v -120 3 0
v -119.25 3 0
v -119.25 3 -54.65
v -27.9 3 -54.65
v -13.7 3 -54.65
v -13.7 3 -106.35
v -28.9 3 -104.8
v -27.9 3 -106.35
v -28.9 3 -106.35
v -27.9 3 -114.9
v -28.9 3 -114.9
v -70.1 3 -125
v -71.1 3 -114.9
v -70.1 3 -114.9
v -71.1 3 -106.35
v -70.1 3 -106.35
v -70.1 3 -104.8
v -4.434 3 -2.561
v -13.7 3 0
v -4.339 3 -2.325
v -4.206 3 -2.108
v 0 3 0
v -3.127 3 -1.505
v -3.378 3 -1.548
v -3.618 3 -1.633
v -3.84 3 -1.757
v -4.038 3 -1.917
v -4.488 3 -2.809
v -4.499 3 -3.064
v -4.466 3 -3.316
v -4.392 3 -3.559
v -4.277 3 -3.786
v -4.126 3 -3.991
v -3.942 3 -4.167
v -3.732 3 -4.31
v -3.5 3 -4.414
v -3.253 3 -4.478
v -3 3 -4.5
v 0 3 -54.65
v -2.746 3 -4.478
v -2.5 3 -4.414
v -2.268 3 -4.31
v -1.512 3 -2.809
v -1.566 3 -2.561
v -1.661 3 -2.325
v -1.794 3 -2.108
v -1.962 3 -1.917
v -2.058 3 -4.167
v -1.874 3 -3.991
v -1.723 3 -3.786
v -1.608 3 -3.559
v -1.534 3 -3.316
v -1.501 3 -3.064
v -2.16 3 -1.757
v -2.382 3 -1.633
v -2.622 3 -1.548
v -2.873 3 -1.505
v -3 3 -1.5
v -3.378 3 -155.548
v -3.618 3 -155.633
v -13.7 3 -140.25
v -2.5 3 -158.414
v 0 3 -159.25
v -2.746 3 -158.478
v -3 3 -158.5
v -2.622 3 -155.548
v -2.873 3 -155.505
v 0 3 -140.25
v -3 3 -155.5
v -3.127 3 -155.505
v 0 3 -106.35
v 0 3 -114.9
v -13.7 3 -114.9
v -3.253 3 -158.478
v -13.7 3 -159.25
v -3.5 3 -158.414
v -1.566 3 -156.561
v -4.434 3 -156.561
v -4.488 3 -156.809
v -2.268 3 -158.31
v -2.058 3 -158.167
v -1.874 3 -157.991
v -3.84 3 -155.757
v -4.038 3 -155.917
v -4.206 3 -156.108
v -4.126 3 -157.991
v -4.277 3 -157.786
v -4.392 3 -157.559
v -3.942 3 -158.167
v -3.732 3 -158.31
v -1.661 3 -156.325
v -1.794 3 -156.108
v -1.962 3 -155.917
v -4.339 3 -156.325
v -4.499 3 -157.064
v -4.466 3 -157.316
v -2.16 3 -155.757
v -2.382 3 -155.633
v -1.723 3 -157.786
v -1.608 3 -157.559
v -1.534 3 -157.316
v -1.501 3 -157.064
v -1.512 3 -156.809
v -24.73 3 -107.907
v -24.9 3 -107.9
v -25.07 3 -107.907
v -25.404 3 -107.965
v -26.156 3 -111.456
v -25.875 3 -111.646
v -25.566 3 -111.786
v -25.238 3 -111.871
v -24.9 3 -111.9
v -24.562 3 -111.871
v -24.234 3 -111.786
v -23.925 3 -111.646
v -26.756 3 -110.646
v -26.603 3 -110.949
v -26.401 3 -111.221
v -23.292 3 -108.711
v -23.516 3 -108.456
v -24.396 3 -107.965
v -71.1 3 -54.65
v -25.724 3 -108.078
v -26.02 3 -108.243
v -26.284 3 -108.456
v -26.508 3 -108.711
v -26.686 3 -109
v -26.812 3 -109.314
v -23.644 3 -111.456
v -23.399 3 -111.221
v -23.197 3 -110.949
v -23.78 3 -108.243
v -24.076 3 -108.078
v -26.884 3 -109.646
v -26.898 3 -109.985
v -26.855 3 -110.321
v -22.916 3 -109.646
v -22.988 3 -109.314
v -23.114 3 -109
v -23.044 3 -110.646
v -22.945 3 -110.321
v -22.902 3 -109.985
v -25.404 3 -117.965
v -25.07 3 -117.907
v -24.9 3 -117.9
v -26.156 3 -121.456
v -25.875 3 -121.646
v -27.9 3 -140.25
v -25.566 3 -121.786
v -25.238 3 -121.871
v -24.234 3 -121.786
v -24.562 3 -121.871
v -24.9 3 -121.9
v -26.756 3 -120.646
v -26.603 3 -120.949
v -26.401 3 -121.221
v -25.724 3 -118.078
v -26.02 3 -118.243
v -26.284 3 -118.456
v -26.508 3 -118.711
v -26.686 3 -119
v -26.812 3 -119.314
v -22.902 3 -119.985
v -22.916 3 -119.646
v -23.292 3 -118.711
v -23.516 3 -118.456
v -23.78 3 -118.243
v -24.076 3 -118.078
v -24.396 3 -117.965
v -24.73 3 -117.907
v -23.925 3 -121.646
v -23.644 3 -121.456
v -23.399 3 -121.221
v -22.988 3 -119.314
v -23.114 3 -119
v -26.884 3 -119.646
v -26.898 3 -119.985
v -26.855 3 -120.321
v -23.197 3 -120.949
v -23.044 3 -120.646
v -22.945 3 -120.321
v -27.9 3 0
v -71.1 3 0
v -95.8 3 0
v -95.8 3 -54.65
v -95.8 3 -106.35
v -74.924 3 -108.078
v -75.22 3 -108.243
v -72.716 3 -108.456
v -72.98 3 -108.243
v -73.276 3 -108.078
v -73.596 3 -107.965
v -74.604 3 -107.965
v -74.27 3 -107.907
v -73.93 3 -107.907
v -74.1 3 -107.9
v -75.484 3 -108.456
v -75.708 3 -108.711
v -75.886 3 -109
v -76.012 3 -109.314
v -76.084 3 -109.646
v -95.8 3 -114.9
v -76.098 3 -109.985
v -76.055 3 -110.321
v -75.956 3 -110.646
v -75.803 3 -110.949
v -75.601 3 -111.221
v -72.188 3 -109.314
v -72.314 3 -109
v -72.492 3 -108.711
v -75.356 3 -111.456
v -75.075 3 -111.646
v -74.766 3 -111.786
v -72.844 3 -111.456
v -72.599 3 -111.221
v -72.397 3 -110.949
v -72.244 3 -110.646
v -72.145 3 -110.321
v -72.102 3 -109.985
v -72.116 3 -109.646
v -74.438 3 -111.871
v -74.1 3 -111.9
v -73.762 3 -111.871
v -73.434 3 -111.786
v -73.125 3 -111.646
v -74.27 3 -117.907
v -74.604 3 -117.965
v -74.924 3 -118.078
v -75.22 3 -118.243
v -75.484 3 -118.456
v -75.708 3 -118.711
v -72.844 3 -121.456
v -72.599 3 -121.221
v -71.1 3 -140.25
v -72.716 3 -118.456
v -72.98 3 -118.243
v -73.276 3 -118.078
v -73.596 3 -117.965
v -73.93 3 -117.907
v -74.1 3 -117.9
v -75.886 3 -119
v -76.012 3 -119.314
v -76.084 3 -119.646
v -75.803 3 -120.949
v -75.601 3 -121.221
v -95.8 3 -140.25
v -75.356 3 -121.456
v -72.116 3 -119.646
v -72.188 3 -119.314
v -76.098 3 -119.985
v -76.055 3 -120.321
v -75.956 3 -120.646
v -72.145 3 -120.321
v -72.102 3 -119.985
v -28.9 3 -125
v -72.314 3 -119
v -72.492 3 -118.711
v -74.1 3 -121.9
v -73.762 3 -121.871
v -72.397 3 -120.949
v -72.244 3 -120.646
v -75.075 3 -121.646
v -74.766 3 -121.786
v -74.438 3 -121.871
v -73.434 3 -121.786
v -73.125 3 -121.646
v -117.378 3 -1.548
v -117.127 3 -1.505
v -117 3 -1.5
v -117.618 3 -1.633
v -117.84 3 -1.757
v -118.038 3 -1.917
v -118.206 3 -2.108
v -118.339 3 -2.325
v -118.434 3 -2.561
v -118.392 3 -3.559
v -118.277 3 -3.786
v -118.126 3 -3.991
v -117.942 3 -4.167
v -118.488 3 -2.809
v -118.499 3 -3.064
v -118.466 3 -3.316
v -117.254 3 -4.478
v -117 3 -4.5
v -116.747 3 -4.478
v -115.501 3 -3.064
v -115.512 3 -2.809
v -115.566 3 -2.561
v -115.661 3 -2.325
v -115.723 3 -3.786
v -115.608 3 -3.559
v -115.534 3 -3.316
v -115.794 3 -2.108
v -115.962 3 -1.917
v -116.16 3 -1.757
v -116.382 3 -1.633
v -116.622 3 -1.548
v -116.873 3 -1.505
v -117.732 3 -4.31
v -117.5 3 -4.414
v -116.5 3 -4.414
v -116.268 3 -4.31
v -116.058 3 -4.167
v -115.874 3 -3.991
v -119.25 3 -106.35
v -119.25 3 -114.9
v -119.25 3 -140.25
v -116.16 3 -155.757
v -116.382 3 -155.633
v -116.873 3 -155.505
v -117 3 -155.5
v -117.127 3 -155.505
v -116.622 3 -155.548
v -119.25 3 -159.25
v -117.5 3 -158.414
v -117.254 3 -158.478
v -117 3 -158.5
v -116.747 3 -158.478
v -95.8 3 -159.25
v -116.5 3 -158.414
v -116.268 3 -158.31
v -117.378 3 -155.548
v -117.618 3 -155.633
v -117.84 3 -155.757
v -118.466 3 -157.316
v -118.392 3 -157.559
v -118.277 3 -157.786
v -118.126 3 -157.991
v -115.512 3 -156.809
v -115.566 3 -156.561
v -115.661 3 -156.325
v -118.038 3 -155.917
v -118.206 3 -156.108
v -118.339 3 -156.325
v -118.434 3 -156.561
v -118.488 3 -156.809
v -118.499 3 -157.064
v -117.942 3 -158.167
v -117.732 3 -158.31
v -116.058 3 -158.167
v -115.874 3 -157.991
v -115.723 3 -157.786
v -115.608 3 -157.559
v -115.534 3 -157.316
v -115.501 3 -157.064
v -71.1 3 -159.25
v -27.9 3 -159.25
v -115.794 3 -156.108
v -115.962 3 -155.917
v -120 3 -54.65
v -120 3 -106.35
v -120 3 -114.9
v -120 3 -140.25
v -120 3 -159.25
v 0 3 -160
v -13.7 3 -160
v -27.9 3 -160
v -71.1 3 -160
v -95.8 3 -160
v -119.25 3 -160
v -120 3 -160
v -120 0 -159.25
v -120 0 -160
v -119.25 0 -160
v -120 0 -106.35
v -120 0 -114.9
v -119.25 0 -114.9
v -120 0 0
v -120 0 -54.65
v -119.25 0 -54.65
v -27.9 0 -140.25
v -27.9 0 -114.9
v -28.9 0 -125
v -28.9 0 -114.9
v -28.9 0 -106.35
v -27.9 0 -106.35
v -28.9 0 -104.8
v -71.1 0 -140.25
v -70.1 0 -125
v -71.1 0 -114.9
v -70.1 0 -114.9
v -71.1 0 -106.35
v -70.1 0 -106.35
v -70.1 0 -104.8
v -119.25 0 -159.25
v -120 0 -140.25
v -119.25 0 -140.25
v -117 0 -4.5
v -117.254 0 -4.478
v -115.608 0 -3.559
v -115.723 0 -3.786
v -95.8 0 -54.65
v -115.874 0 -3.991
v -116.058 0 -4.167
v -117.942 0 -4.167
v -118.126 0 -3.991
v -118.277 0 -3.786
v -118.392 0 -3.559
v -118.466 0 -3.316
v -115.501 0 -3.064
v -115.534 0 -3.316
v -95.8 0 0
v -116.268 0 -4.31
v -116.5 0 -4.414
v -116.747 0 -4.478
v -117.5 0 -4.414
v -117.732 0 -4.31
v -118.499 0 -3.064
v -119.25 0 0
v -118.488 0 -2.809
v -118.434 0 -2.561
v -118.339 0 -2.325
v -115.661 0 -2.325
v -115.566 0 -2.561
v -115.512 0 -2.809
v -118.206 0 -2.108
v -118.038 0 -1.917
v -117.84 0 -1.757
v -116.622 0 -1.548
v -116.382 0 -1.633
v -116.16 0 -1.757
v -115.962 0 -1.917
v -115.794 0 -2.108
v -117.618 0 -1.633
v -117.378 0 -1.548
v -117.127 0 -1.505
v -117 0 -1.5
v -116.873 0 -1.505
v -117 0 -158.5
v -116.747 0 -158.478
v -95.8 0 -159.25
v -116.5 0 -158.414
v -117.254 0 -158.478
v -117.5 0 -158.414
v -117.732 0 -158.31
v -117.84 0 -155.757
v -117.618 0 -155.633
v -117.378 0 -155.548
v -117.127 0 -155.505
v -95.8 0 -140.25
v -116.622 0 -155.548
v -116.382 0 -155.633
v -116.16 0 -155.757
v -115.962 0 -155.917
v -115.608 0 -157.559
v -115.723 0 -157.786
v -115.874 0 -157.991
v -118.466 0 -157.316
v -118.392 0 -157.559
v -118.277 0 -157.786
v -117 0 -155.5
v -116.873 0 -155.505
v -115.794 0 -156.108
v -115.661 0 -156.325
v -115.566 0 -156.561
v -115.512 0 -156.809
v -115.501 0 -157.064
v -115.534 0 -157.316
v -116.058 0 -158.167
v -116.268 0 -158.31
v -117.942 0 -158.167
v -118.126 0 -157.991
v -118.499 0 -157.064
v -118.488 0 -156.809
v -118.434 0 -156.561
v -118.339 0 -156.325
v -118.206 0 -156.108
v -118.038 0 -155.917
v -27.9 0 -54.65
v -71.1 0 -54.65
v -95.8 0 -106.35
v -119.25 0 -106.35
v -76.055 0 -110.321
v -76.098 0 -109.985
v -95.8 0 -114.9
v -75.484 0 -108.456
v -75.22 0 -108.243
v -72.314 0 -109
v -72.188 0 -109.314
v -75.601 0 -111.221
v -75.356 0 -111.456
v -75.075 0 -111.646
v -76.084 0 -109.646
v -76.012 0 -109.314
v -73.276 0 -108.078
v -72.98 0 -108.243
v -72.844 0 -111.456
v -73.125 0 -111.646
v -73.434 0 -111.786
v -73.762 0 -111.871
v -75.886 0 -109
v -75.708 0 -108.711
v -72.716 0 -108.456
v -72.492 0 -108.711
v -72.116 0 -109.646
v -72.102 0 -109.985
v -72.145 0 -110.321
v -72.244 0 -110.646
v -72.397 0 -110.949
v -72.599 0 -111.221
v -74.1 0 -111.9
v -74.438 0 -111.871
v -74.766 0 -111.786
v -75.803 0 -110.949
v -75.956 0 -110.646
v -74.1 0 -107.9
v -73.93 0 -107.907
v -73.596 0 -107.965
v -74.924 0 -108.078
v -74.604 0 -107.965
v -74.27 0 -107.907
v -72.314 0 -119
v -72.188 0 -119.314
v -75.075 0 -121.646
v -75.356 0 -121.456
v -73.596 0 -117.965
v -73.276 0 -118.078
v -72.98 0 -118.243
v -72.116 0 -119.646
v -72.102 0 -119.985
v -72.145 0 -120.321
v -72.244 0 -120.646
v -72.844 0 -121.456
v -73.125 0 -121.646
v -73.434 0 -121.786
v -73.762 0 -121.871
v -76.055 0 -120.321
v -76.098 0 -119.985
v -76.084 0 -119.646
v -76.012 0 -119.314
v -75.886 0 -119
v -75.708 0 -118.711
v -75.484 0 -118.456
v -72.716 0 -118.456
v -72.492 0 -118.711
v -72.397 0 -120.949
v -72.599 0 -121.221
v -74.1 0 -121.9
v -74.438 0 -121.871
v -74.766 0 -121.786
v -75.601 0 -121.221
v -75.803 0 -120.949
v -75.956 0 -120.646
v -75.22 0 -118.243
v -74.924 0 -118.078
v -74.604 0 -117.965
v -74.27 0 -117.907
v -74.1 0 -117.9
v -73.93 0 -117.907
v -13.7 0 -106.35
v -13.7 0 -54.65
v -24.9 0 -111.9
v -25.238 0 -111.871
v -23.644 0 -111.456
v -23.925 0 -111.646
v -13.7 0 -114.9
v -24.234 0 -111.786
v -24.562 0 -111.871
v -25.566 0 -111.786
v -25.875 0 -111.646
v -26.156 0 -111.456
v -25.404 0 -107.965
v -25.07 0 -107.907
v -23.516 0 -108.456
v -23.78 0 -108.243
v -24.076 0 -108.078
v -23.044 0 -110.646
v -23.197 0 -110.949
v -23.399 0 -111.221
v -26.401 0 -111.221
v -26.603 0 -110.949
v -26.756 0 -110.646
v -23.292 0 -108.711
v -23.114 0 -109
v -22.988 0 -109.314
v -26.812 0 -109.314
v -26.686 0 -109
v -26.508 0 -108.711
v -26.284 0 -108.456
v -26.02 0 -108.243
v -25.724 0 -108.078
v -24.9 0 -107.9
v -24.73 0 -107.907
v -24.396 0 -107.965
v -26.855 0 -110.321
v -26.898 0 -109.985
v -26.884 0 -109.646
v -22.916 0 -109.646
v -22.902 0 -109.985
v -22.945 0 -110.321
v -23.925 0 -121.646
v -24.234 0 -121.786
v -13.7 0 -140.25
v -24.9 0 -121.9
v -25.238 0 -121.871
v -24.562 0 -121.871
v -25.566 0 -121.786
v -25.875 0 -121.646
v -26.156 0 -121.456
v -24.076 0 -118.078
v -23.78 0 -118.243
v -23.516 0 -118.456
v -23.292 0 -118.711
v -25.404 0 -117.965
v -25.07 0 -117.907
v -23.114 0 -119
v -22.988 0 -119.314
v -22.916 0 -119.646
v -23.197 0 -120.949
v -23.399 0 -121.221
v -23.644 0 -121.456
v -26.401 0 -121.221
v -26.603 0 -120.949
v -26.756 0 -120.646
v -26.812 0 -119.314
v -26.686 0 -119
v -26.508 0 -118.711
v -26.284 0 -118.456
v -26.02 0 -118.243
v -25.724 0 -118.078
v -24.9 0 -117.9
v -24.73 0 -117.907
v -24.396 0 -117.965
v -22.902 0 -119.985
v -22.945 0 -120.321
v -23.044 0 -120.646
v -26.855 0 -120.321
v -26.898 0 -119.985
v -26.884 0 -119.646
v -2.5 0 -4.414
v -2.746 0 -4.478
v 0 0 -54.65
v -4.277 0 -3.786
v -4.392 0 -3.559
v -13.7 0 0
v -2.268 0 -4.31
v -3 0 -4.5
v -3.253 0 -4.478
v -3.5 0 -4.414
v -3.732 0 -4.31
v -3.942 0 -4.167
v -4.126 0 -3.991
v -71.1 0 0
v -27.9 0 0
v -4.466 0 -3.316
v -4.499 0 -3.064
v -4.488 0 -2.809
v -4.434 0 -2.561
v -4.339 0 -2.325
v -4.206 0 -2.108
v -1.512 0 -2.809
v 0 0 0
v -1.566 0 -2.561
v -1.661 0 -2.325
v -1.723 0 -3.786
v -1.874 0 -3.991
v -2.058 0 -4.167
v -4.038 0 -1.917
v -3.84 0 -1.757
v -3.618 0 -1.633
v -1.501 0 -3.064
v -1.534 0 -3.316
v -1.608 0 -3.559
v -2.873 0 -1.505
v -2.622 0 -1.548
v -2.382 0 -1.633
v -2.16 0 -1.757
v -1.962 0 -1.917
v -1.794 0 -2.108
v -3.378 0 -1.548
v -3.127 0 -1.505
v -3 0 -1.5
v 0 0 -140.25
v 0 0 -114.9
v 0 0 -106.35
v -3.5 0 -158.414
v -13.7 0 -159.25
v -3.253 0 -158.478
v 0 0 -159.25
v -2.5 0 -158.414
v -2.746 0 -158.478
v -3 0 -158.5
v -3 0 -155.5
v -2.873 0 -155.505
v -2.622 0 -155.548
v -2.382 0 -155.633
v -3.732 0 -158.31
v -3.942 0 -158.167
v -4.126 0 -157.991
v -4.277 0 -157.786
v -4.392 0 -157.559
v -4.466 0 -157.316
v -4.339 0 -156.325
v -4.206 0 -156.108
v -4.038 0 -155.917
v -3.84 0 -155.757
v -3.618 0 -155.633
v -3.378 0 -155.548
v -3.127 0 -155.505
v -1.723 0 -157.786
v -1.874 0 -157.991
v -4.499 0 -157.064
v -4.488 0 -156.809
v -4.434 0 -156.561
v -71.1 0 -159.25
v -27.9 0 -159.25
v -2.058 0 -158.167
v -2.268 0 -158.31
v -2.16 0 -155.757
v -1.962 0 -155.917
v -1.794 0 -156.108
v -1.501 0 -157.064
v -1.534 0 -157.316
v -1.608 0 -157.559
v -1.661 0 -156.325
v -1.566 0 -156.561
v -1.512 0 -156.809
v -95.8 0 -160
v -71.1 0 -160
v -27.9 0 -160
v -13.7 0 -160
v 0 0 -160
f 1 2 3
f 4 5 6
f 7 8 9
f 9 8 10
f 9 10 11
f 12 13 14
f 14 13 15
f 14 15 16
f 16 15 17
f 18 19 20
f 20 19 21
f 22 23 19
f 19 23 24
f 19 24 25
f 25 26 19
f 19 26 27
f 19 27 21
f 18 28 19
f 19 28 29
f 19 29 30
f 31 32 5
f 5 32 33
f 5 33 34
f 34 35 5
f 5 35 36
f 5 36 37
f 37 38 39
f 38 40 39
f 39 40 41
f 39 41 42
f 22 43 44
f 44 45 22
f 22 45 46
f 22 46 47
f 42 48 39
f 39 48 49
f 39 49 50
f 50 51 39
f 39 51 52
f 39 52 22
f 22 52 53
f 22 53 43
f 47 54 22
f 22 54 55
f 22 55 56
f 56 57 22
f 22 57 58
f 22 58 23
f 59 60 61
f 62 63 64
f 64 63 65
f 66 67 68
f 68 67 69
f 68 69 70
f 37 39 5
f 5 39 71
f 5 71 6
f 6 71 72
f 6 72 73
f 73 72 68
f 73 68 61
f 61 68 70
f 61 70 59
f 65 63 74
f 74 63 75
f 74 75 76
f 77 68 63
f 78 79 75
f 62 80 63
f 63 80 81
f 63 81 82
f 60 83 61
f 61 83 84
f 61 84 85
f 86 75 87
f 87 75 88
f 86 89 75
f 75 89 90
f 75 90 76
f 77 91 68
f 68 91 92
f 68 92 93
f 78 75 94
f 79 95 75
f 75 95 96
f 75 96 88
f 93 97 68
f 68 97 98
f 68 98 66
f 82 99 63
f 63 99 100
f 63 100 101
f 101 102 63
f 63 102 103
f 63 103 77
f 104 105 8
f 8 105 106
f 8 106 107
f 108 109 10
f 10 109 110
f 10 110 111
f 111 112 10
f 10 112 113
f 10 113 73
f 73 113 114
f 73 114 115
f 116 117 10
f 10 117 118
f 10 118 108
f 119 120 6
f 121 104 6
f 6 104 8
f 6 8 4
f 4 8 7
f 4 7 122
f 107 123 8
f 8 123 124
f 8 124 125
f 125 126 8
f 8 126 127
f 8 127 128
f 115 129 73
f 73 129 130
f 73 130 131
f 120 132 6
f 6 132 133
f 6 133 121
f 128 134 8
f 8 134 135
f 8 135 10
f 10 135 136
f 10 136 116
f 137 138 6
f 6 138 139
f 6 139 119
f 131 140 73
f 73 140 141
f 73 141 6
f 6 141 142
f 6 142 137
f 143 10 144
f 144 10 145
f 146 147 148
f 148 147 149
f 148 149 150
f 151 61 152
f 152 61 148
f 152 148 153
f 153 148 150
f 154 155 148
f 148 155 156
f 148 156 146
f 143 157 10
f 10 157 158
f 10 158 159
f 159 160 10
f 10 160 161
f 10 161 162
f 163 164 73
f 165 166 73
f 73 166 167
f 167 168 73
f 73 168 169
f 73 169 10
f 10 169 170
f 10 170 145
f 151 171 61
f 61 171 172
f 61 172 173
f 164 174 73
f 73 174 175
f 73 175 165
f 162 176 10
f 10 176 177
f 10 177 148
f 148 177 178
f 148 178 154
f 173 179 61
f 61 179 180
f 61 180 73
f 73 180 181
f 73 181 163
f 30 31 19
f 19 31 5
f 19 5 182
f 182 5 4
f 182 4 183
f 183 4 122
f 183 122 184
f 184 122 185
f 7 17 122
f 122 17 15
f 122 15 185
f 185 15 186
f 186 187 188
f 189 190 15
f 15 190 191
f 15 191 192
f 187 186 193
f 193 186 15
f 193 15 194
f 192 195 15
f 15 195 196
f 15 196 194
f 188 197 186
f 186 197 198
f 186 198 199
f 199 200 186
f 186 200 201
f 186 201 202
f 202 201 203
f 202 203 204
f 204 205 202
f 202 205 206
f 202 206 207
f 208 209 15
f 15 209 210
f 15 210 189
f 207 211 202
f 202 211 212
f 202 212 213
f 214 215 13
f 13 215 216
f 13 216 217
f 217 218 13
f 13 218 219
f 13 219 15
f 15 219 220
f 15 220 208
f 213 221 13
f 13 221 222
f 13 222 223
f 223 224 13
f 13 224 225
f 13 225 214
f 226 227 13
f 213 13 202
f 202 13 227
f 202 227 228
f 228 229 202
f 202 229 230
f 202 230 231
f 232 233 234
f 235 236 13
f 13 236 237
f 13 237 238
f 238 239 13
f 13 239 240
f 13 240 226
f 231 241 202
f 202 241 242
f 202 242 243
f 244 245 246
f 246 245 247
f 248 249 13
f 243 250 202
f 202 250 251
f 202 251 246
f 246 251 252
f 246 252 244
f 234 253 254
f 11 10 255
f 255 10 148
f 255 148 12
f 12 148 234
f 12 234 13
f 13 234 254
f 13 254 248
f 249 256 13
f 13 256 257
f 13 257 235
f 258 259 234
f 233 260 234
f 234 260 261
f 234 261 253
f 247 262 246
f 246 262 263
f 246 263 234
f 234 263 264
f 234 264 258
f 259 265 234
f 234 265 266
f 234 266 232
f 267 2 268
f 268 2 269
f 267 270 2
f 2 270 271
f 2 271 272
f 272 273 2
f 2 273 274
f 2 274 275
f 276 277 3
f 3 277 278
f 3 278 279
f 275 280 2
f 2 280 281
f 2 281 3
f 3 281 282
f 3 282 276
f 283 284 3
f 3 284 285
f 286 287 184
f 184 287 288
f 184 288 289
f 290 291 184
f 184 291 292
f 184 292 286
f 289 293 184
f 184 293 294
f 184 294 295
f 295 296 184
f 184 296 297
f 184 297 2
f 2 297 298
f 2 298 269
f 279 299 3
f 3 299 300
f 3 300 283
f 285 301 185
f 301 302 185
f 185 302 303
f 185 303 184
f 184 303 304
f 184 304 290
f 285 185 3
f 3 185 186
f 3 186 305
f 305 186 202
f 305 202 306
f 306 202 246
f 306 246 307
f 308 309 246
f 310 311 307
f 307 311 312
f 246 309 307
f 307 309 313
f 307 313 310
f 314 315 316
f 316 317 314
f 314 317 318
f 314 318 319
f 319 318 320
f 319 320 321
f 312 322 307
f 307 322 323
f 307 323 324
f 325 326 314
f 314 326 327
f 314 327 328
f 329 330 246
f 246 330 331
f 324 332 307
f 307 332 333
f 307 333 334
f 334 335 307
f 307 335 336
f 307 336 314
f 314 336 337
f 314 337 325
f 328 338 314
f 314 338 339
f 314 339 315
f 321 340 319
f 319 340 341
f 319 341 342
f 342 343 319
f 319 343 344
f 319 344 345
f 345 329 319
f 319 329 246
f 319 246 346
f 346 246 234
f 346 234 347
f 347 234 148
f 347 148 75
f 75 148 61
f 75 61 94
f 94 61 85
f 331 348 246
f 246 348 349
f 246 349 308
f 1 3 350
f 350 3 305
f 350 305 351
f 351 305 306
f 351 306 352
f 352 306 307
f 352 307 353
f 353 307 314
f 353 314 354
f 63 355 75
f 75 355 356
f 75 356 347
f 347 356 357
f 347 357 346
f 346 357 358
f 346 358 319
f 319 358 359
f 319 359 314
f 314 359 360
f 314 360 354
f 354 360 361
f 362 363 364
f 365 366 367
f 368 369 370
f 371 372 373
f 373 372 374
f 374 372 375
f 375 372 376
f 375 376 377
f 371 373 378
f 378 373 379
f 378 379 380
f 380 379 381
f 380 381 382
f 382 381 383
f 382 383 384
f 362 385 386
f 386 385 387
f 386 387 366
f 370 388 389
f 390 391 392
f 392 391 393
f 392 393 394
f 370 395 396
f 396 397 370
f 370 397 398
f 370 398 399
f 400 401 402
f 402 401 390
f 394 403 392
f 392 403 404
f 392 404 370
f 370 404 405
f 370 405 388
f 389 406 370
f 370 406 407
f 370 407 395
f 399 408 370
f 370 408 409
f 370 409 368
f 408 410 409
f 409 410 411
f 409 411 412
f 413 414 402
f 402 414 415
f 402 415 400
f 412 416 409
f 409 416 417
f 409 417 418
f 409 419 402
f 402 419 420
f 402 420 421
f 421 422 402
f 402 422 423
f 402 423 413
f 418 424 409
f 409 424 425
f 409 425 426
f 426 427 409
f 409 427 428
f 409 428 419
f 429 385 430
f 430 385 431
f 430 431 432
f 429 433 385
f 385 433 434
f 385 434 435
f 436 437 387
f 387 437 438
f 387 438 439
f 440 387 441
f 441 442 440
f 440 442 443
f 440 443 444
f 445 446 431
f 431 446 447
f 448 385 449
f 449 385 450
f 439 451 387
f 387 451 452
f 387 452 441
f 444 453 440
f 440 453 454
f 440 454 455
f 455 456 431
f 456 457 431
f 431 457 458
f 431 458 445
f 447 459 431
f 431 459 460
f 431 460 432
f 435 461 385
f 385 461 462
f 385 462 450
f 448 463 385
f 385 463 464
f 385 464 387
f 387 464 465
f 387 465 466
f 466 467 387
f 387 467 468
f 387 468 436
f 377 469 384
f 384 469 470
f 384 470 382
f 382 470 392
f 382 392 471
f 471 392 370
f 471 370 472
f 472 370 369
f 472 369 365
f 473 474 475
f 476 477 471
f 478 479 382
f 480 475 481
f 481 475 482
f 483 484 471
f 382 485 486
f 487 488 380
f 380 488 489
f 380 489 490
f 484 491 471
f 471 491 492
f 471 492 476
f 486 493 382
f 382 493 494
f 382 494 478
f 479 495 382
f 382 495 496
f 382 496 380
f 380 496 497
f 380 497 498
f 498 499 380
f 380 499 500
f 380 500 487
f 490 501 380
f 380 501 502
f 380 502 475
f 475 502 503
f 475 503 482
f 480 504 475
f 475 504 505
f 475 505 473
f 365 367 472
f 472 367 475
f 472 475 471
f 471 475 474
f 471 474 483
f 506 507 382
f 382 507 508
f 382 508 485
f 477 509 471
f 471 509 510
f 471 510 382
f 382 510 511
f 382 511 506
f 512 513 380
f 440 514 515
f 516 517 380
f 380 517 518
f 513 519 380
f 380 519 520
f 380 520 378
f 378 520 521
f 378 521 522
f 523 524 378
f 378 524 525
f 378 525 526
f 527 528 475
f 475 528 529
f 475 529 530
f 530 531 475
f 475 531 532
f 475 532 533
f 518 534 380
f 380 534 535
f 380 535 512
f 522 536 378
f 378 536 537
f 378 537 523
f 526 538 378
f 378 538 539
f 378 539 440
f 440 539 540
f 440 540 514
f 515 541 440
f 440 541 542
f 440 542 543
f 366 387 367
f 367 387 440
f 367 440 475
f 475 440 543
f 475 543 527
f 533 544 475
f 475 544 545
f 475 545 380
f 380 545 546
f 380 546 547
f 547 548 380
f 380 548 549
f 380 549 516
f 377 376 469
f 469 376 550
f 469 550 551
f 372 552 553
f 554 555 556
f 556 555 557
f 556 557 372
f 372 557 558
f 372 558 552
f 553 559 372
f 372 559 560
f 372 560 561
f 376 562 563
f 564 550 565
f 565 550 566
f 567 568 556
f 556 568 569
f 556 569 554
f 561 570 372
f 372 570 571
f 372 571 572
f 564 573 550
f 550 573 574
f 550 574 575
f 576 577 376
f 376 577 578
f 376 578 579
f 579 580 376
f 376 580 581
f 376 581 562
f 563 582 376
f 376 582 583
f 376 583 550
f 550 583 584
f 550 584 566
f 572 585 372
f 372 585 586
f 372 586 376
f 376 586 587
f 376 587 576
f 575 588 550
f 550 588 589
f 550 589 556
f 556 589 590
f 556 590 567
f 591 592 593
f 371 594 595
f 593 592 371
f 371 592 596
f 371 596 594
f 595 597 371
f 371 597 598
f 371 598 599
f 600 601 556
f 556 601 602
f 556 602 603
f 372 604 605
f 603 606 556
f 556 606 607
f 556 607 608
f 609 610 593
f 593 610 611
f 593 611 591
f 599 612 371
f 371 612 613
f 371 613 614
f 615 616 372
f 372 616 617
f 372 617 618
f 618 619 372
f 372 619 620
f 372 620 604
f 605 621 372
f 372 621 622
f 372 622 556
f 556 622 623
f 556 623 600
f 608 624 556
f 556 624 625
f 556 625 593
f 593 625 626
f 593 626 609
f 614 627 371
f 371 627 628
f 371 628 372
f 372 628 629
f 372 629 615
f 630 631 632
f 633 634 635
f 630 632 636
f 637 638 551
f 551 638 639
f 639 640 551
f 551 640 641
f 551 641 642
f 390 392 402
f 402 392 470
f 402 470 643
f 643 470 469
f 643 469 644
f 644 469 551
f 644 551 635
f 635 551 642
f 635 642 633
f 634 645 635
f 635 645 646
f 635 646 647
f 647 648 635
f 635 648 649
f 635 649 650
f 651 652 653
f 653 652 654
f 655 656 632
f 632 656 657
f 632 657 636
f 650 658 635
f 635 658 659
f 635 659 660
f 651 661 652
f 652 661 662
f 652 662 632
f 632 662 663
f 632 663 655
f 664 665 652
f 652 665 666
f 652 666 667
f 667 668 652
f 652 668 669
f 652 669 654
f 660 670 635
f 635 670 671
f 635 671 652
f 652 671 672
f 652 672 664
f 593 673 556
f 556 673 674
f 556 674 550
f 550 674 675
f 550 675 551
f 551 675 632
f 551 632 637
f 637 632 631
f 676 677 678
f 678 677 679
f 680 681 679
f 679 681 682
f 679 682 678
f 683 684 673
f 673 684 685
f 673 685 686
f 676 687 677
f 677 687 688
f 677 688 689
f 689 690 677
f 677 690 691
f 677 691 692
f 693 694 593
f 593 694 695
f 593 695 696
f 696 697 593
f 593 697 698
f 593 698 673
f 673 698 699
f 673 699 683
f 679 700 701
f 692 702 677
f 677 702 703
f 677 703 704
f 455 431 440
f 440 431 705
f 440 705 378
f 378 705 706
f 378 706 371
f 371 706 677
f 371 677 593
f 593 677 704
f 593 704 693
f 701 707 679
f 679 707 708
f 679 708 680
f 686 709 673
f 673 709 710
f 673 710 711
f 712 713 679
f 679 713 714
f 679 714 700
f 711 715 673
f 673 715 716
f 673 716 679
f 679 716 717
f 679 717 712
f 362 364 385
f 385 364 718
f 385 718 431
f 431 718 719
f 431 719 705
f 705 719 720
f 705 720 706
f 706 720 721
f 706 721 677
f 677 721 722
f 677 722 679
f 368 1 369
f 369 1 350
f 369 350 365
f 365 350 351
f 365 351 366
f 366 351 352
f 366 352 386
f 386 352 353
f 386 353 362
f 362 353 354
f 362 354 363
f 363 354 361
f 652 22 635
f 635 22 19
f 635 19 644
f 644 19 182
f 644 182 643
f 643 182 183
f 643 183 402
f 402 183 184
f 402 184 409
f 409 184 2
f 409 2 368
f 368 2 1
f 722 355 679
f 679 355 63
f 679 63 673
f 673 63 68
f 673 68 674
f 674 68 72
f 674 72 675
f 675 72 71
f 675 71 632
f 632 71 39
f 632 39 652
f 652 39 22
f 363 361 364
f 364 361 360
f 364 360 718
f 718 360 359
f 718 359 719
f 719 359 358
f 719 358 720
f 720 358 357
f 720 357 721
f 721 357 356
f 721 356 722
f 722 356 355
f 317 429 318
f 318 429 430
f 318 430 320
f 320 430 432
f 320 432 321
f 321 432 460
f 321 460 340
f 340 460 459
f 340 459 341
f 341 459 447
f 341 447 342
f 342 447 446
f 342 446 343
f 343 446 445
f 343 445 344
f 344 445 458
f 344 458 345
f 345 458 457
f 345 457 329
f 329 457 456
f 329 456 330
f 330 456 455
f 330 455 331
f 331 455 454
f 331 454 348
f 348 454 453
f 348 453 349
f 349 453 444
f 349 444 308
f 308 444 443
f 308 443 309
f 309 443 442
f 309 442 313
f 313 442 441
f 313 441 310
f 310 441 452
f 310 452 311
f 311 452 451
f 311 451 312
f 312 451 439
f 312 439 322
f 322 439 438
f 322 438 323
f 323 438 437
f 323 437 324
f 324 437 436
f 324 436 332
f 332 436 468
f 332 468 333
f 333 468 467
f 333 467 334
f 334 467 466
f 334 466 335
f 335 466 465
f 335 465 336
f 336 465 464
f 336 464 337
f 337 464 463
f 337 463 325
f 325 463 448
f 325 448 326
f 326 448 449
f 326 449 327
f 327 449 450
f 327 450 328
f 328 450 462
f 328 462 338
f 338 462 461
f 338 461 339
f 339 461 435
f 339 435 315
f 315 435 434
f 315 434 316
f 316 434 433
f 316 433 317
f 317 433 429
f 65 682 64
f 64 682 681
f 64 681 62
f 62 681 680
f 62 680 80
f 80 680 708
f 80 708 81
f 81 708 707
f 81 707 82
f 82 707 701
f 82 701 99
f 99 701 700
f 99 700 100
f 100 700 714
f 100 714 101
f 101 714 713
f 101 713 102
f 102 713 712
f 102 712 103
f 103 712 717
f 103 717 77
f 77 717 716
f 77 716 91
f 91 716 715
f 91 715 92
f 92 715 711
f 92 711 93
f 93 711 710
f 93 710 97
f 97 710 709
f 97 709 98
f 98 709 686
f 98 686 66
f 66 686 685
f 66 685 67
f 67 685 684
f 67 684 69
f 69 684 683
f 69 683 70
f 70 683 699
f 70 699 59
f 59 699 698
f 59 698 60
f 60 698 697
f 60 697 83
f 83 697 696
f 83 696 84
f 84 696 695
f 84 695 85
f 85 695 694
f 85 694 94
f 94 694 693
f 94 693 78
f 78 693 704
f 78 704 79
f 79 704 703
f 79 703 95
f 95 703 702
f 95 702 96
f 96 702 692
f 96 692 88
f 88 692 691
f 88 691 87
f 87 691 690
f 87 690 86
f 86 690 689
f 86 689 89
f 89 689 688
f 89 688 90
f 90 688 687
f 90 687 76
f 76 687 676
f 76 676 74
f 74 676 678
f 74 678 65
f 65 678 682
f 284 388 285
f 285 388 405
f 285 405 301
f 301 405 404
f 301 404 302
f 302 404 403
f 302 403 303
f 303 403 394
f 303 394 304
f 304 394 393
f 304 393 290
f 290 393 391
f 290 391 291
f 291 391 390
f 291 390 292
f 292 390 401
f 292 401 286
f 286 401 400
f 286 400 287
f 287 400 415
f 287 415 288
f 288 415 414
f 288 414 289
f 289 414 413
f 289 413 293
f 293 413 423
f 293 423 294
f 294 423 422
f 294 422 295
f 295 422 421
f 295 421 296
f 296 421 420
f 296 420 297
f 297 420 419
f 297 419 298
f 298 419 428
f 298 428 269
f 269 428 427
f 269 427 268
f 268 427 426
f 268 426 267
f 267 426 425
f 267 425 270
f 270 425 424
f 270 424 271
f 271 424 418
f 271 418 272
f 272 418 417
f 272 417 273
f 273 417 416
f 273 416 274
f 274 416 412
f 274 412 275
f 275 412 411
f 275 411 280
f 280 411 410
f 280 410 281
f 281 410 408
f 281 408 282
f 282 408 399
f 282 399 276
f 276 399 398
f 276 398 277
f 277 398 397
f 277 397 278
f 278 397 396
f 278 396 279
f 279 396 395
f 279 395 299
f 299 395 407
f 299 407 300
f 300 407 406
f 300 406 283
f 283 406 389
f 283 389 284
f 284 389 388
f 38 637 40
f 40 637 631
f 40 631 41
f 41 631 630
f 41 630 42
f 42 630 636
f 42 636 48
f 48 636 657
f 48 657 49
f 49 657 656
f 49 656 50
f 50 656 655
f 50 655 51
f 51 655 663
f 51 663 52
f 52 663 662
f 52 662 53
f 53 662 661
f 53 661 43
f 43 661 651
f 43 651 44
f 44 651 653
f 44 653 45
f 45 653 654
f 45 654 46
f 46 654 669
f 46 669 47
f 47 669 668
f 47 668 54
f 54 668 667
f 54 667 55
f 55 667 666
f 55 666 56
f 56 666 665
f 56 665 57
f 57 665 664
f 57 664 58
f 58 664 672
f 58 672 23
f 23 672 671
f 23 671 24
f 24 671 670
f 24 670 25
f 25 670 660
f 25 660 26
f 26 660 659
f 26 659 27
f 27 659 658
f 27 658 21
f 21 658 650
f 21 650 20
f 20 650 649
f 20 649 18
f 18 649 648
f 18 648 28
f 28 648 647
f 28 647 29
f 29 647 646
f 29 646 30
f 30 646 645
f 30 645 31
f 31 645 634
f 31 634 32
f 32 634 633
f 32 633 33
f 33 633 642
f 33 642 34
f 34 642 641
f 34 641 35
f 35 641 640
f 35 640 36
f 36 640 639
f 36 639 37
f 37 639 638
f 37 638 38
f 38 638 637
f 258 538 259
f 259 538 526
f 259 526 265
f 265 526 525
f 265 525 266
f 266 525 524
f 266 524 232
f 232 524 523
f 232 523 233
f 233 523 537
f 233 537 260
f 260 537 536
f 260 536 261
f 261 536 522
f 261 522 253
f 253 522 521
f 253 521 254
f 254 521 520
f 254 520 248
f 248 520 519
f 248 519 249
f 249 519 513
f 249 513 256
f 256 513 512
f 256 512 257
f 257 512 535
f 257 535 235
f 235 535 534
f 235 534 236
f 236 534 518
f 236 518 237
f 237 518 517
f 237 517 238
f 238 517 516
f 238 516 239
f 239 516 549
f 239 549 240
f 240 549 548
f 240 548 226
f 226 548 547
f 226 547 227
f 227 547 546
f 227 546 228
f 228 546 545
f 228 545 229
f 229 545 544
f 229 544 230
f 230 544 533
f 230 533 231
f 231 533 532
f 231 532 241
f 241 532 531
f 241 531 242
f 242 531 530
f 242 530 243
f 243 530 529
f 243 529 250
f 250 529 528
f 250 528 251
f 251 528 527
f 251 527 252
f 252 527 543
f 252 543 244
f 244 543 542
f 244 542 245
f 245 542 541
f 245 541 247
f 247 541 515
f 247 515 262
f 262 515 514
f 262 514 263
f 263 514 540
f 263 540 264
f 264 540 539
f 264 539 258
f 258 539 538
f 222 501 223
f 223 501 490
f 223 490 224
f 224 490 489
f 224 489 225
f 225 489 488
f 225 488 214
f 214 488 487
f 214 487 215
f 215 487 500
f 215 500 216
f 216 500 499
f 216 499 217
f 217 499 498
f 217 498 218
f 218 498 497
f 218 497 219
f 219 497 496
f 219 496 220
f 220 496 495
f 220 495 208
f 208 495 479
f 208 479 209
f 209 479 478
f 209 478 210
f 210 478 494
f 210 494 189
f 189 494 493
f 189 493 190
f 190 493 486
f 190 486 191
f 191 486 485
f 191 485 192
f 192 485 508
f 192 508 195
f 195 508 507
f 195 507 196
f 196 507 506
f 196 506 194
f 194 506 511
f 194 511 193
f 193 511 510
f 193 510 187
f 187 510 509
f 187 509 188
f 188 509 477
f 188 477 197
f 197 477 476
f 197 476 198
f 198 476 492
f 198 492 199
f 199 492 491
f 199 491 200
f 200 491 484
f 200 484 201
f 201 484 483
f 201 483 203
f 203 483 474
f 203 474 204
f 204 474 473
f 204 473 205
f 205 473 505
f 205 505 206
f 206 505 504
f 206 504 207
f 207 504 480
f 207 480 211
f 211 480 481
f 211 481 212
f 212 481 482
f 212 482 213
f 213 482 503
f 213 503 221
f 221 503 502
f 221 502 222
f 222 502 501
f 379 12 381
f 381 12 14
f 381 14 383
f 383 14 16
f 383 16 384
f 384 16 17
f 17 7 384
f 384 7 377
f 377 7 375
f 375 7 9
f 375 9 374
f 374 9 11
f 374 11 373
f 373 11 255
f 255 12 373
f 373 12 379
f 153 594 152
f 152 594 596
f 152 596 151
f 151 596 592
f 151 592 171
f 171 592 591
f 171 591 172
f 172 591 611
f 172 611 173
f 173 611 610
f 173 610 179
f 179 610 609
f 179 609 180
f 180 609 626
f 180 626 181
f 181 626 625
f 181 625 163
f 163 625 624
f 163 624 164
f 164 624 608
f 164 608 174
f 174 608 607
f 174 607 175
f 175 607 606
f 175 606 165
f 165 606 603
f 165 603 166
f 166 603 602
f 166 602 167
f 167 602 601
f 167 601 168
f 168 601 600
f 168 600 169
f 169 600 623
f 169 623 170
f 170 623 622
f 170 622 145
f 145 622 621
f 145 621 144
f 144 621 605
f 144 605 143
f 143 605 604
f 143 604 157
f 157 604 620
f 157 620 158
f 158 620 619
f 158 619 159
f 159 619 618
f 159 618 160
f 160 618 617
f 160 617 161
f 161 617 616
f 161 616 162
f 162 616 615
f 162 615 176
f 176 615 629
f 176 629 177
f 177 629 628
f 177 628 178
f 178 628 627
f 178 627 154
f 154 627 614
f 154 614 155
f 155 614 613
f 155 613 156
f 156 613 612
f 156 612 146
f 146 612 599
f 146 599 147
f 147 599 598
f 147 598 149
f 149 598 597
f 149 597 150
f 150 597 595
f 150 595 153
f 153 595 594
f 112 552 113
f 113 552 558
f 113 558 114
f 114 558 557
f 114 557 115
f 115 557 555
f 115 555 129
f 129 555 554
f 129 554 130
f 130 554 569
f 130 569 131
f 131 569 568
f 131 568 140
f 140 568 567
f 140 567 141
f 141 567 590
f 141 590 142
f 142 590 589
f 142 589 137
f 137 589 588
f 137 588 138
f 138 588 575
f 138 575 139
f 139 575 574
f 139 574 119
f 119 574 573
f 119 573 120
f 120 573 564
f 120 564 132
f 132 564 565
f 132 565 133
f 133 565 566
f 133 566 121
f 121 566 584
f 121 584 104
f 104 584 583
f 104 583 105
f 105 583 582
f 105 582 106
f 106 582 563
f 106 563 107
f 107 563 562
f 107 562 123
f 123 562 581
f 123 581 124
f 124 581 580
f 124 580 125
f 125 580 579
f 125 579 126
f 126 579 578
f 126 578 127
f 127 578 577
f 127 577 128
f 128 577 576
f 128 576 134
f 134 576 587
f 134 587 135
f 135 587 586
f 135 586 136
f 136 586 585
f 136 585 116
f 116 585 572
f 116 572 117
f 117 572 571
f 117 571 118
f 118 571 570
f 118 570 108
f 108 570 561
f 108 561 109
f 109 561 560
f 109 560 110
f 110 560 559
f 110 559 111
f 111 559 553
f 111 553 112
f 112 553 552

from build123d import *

# Parameters (mm, degrees)
SKETCH1_W           = 120
SKETCH1_H           = 160
SKETCH1_R           = 1.5
SKETCH1_R_2         = 2
SKETCH1_W_2         = 41.2
SKETCH1_H_2         = 20.2
BOSS_EXTRUDE1_DEPTH = 3


with BuildPart() as part:
    # Sketch1 → Boss-Extrude1 (new body)
    with BuildSketch(Plane(origin=(0, 0, 0), x_dir=(1, 0, 0), z_dir=(0, 1, 0))):
        with Locations((-60, 80)):
            Rectangle(SKETCH1_W, SKETCH1_H)
        with Locations(Location((-117, 157, 0), (0, 0, 270))):
            Circle(SKETCH1_R, mode=Mode.SUBTRACT)
        with Locations(Location((-3, 157, 0), (0, 0, 270))):
            Circle(SKETCH1_R, mode=Mode.SUBTRACT)
        with Locations(Location((-117, 3, 0), (0, 0, 270))):
            Circle(SKETCH1_R, mode=Mode.SUBTRACT)
        with Locations(Location((-3, 3, 0), (0, 0, 270))):
            Circle(SKETCH1_R, mode=Mode.SUBTRACT)
        with Locations(Location((-74.1, 119.9, 0), (0, 0, 270))):
            Circle(SKETCH1_R_2, mode=Mode.SUBTRACT)
        with Locations(Location((-74.1, 109.9, 0), (0, 0, 270))):
            Circle(SKETCH1_R_2, mode=Mode.SUBTRACT)
        with Locations(Location((-24.9, 119.9, 0), (0, 0, 270))):
            Circle(SKETCH1_R_2, mode=Mode.SUBTRACT)
        with Locations(Location((-24.9, 109.9, 0), (0, 0, 270))):
            Circle(SKETCH1_R_2, mode=Mode.SUBTRACT)
        with Locations((-49.5, 114.9)):
            Rectangle(SKETCH1_W_2, SKETCH1_H_2, mode=Mode.SUBTRACT)
    extrude(amount=BOSS_EXTRUDE1_DEPTH)


solid = part.part
